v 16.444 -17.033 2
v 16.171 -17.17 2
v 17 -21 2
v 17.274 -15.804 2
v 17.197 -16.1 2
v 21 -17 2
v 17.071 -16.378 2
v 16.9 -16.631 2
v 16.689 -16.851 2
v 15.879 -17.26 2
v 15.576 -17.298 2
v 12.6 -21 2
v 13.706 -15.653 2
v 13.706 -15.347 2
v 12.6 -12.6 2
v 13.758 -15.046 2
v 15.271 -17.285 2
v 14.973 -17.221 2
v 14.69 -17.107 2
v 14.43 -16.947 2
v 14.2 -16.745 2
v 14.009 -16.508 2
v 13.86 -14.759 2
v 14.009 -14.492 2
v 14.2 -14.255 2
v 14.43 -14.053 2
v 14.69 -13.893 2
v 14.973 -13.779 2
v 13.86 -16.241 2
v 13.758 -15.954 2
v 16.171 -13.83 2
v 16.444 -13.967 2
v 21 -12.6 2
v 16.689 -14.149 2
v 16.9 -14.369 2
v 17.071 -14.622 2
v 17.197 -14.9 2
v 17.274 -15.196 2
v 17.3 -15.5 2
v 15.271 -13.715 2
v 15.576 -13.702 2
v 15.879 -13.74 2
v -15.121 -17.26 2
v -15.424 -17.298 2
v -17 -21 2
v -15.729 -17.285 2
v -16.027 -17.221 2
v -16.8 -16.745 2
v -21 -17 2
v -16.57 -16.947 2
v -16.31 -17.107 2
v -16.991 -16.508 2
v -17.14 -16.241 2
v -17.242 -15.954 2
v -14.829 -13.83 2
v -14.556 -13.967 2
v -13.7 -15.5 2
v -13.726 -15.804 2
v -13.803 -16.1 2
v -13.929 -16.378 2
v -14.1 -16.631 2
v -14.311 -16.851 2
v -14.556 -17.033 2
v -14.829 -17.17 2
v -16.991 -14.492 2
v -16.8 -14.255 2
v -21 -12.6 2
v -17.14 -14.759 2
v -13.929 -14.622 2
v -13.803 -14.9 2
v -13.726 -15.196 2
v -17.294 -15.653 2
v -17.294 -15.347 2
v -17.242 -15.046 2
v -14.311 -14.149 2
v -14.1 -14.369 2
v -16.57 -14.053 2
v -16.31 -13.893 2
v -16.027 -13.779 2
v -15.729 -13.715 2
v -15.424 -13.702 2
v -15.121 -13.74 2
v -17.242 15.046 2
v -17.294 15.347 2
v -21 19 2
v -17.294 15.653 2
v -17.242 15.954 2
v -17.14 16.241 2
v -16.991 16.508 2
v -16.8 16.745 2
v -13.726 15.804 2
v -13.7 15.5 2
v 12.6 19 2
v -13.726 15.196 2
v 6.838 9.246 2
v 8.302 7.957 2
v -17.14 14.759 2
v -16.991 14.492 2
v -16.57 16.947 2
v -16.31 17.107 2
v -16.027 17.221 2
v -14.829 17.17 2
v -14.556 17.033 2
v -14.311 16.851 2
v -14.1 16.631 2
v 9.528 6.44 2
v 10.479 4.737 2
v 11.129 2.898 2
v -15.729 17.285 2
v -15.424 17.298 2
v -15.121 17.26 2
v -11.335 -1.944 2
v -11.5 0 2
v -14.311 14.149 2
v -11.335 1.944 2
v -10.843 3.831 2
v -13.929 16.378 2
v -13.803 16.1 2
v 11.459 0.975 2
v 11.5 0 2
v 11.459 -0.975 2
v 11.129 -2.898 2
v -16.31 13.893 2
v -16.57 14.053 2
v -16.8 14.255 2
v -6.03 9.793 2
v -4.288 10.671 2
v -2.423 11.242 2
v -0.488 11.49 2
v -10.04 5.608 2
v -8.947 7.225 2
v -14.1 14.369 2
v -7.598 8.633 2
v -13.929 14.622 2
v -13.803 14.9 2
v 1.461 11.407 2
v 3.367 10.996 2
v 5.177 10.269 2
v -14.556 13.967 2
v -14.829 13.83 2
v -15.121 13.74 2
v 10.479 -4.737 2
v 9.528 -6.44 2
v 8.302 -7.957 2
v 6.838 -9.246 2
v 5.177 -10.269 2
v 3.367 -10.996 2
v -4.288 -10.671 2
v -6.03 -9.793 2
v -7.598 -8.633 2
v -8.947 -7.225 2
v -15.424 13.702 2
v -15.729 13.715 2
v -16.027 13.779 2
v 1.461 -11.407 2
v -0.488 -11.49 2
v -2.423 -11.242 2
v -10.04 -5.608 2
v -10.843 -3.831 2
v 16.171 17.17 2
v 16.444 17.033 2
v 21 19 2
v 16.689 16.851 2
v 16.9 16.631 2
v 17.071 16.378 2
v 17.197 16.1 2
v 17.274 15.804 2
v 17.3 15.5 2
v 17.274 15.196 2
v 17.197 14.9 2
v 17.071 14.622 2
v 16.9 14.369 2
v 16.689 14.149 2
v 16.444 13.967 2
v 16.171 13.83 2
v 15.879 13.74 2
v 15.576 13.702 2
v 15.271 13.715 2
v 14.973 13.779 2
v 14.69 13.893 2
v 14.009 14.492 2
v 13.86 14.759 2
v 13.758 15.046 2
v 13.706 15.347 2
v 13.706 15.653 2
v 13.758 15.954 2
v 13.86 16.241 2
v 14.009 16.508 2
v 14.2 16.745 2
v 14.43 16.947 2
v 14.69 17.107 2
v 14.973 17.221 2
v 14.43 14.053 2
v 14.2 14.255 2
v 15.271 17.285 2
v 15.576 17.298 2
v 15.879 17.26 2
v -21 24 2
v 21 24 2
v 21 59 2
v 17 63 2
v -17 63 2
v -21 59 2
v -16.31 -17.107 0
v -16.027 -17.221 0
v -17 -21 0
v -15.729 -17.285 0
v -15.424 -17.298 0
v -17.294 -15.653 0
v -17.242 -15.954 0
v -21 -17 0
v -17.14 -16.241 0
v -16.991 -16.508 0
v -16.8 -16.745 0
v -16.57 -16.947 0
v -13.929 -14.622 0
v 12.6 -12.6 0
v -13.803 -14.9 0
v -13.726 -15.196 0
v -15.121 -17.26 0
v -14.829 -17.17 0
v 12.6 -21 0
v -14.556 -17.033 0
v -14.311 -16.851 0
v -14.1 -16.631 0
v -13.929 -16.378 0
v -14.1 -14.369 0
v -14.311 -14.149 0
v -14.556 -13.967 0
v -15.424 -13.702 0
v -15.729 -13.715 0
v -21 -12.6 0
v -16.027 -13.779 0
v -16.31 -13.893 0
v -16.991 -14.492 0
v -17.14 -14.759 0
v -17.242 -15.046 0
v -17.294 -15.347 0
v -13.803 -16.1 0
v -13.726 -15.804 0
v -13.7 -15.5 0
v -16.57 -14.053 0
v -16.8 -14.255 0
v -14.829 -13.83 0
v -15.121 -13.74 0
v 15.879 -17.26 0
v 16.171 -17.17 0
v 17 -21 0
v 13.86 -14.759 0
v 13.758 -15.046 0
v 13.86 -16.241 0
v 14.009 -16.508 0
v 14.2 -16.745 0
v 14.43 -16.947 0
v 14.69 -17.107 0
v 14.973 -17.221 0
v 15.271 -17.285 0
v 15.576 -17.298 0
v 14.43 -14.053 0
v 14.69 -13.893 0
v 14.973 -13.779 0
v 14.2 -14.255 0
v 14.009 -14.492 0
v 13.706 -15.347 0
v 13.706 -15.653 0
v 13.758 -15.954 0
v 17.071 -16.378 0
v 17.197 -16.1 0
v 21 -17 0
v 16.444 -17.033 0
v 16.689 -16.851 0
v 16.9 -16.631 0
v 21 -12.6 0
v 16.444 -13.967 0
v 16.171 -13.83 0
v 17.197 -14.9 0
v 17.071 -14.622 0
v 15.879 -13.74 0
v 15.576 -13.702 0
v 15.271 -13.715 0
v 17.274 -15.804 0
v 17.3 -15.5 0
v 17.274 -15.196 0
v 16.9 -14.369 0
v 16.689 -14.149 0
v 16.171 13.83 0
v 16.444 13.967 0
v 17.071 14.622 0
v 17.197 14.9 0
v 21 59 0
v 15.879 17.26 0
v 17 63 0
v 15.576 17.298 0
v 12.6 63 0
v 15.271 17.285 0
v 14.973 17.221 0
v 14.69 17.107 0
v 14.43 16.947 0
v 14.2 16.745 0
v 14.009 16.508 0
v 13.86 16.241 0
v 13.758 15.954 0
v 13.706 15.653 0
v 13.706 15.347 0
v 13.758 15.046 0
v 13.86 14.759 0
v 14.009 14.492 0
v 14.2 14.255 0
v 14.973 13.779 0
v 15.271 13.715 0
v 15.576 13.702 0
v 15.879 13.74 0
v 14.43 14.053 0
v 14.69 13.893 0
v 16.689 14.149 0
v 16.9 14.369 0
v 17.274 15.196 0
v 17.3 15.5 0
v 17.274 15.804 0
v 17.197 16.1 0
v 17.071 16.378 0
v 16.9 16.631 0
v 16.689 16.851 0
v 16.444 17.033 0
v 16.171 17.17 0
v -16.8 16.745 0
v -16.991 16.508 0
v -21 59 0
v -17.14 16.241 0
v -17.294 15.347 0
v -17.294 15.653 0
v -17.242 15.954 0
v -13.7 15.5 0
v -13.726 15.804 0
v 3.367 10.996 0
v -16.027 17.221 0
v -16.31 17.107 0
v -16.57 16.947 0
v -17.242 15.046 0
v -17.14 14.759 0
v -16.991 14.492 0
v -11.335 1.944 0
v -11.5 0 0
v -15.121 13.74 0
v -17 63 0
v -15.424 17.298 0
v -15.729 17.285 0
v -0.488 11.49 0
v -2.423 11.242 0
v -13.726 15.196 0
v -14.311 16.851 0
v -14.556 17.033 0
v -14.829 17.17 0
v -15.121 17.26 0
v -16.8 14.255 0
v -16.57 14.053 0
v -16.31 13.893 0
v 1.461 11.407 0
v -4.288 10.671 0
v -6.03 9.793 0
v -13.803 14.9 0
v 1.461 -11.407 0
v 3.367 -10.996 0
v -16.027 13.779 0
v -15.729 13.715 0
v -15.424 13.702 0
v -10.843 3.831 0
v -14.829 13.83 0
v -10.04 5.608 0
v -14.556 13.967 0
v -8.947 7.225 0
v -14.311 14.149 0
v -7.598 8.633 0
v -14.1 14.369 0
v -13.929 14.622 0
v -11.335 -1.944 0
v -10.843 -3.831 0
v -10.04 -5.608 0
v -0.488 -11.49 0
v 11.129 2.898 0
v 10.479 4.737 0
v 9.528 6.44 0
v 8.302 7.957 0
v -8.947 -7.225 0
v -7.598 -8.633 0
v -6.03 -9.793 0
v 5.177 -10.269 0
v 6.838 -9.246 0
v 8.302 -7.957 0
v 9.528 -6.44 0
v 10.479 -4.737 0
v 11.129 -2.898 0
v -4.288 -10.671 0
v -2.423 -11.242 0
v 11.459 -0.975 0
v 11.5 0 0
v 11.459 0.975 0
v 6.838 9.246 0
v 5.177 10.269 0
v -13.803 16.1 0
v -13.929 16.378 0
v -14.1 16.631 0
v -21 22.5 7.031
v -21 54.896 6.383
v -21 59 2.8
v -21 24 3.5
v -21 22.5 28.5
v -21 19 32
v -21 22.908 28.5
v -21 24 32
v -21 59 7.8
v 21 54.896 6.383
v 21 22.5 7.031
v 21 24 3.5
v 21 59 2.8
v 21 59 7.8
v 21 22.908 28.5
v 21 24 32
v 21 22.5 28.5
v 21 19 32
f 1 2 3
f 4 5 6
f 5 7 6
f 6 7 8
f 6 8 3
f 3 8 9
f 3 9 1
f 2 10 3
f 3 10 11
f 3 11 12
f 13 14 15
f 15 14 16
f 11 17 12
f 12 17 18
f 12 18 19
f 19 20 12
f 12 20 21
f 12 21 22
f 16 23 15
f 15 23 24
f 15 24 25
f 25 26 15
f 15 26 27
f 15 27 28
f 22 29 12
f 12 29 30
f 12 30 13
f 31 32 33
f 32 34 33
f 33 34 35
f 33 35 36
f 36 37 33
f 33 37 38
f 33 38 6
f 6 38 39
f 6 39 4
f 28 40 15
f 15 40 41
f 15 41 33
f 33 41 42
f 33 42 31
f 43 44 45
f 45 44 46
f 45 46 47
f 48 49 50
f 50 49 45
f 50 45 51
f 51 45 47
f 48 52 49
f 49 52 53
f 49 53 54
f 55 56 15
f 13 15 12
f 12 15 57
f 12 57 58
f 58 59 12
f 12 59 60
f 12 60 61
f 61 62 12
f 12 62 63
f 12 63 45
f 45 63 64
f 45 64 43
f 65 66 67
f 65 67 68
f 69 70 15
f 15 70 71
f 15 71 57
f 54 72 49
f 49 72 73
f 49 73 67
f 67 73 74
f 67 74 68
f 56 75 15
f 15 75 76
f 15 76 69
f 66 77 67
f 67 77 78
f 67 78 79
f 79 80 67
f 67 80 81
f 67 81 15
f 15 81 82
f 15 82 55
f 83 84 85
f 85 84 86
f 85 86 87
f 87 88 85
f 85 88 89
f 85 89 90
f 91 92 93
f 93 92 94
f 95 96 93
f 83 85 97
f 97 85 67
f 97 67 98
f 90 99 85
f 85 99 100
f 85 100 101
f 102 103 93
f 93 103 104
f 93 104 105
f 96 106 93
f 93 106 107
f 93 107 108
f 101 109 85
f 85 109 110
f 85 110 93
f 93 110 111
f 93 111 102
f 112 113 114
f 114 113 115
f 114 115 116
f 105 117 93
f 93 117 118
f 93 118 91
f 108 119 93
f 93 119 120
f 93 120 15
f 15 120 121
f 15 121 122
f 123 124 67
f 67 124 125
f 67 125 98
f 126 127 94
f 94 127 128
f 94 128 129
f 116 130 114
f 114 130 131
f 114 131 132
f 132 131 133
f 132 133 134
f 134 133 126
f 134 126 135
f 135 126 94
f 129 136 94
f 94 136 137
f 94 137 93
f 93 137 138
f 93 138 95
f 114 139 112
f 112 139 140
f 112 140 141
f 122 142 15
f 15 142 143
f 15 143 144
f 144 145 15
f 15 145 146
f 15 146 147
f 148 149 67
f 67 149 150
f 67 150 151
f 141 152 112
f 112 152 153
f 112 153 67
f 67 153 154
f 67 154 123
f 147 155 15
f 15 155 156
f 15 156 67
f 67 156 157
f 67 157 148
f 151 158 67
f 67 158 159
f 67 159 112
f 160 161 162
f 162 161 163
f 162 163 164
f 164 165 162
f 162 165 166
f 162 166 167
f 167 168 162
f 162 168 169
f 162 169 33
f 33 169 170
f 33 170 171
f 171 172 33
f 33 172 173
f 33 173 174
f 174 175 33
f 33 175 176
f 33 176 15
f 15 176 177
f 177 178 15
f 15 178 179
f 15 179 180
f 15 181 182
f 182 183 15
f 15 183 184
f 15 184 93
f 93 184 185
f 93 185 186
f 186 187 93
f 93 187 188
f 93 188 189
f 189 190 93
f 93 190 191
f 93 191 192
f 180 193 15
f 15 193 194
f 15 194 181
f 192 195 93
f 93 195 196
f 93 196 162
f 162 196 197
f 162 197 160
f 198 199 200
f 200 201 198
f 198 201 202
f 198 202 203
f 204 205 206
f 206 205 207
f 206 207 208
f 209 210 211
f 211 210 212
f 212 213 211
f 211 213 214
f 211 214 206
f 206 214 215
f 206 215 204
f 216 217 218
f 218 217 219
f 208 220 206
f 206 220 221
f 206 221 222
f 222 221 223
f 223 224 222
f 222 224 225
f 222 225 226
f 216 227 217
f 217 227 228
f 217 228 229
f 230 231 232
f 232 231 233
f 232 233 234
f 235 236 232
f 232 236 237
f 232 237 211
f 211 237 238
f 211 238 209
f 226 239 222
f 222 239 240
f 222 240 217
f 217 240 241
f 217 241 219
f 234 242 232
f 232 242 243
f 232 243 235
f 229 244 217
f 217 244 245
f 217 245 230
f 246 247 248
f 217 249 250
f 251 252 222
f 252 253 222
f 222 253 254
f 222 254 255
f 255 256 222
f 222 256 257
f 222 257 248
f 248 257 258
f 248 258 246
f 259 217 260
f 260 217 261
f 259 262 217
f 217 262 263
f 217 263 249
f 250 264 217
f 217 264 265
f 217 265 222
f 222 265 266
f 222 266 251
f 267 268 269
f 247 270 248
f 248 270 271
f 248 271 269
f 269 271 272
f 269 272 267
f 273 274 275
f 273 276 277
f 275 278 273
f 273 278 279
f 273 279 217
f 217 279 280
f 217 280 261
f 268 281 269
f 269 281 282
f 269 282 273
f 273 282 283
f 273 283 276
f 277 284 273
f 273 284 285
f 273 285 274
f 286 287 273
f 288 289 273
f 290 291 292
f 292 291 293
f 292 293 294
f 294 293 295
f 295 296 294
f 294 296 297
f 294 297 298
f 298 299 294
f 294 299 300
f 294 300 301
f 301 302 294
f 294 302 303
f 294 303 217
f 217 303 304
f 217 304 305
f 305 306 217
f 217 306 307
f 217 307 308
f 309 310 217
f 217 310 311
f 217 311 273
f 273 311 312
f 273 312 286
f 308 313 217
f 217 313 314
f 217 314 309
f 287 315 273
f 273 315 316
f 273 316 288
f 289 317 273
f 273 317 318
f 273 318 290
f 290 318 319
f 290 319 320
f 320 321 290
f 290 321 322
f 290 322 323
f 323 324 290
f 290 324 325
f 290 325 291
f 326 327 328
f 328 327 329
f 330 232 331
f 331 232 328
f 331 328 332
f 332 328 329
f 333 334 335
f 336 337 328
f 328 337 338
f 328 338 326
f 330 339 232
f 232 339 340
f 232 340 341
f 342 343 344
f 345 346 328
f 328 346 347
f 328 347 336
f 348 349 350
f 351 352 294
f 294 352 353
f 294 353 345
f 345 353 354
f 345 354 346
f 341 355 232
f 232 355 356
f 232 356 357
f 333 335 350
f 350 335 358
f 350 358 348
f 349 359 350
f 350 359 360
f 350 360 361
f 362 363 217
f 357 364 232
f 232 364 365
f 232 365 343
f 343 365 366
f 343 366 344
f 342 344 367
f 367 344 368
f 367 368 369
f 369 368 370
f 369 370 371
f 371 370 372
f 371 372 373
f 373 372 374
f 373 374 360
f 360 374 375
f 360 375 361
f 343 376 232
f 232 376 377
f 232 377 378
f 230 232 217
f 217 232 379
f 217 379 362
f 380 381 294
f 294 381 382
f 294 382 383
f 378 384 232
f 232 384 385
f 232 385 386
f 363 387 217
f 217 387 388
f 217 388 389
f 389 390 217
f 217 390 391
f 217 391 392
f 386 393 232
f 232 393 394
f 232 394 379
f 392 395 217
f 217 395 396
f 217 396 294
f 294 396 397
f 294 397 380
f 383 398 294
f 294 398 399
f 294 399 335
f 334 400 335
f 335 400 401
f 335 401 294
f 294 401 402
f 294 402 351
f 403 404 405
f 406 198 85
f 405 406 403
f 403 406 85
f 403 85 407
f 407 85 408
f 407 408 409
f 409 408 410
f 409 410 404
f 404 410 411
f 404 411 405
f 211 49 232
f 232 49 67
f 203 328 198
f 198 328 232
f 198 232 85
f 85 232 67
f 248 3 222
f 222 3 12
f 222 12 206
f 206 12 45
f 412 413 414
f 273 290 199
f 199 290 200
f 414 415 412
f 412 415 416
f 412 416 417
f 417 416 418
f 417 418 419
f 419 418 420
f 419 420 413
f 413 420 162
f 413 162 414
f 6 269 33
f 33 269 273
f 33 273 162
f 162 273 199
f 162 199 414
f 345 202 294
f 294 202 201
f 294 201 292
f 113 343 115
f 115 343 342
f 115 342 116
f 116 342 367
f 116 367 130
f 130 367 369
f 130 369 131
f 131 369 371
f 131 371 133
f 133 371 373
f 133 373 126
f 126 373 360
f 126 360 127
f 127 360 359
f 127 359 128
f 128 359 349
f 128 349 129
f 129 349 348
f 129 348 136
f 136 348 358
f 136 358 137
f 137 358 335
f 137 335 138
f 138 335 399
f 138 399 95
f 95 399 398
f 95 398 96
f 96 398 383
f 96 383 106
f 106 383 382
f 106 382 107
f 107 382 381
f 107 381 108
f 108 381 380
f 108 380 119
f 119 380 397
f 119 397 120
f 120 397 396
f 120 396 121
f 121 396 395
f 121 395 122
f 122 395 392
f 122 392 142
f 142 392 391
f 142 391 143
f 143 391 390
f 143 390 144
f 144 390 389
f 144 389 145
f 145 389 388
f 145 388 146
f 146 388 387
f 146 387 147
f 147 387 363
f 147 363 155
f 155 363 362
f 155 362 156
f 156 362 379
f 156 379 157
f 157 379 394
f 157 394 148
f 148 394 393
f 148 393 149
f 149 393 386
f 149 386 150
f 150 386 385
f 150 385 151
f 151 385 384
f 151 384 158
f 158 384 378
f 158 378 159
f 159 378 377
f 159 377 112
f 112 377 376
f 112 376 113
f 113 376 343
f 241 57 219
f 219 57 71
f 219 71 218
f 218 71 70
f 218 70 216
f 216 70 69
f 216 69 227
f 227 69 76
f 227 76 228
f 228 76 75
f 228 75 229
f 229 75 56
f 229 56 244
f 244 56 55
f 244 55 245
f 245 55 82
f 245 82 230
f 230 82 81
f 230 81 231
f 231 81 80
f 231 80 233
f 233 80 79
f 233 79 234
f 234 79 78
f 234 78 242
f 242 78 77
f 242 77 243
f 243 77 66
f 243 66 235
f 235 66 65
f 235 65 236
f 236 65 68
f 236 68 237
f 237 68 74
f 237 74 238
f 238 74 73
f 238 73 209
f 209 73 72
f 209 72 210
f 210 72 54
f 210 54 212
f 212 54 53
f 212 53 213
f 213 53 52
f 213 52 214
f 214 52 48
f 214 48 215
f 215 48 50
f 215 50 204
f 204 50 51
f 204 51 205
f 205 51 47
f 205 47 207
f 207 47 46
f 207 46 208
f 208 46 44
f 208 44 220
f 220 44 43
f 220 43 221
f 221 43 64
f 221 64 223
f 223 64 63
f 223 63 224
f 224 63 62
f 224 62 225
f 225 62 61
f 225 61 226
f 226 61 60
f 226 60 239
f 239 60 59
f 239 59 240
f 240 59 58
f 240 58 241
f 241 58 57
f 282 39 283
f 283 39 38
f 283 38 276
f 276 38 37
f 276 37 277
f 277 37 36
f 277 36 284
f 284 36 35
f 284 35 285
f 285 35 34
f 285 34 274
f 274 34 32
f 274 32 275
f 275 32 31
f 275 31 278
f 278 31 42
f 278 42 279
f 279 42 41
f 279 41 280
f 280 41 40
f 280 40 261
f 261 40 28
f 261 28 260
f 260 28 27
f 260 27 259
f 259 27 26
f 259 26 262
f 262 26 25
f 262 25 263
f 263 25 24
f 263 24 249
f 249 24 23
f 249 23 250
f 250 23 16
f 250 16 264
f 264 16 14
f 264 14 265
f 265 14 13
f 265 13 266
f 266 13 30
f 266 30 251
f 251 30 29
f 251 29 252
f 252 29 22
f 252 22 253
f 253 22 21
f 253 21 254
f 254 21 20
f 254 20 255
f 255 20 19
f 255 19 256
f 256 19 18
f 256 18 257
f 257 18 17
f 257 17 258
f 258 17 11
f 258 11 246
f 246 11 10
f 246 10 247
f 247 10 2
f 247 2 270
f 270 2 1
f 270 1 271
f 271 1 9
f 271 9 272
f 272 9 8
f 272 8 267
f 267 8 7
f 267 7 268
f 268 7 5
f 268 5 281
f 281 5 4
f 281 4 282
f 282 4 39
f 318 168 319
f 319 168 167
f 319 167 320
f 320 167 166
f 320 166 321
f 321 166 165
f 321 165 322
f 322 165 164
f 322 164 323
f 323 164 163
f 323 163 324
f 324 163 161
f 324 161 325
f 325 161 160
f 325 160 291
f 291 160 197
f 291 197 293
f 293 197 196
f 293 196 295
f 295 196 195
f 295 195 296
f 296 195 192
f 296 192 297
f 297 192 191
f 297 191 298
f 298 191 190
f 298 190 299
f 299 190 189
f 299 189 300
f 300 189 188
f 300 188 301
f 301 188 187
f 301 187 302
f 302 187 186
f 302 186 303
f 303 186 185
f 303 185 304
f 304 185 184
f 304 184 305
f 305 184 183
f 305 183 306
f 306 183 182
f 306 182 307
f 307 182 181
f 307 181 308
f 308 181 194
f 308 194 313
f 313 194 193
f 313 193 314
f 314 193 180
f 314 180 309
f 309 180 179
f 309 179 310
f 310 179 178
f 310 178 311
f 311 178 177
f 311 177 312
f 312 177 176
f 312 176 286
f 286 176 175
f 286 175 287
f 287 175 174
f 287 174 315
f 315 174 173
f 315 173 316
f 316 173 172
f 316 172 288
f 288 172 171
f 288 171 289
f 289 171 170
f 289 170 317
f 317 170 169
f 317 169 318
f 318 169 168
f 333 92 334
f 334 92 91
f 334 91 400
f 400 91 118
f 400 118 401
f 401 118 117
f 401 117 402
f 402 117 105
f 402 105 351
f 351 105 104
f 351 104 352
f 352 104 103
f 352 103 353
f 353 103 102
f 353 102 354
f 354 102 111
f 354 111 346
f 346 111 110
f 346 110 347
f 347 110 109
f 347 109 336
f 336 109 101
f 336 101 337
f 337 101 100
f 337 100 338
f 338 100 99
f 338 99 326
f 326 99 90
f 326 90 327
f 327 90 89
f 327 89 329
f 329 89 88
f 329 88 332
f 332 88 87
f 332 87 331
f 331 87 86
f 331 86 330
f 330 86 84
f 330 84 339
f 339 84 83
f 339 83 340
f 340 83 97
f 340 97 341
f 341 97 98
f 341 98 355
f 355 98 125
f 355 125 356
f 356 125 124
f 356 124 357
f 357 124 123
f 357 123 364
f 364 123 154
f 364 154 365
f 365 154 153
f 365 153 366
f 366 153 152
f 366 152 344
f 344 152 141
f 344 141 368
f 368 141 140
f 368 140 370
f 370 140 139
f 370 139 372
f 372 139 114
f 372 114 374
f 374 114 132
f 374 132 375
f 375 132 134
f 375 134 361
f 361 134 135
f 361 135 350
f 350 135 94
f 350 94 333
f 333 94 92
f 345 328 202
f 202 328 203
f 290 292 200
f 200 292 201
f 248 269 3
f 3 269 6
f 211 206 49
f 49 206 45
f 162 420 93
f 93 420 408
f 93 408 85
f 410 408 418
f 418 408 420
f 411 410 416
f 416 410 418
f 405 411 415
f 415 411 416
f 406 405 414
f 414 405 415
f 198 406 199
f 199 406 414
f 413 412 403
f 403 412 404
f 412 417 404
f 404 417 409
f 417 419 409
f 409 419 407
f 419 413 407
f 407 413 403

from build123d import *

# Parameters (mm, degrees)
SKETCH1_W            = 42
SKETCH1_H            = 84
SKETCH1_R            = 11.5
BOSS_EXTRUDE1_DEPTH  = 2
M3_CLEARANCE_HOLE1_D = 3.6
CHAMFER1_SIZE        = 4
BOSS_EXTRUDE2_DEPTH  = 42
CUT_EXTRUDE4_DEPTH   = 43


with BuildPart() as part:
    # Sketch1 → Boss-Extrude1 (new body)
    with BuildSketch(Plane.XY):
        with Locations((0, 21)):
            Rectangle(SKETCH1_W, SKETCH1_H)
        Circle(SKETCH1_R, mode=Mode.SUBTRACT)
    extrude(amount=BOSS_EXTRUDE1_DEPTH)

    # M3 Clearance Hole1 (through all)
    with Locations(Plane.XY.offset(2)):
        with Locations((-15.5, 15.5), (15.5, 15.5), (15.5, -15.5), (-15.5, -15.5)):
            Hole(M3_CLEARANCE_HOLE1_D / 2)

    # Chamfer1
    chamfer1_edges = [part.edges().sort_by_distance(p)[0] for p in [
        (-21, 63, 1),
        (21, 63, 1),
        (21, -21, 1),
        (-21, -21, 1),
    ]]
    chamfer(chamfer1_edges, length=CHAMFER1_SIZE)

    # Sketch4 → Boss-Extrude2 (add, through all)
    with BuildSketch(Plane(origin=(21, 0, 0), x_dir=(0, 0, -1), z_dir=(1, 0, 0))):
        Polygon((-32, 24), (-7.8, 59), (-2.8, 59), (-3.5, 24), (-2, 24), (-2, 19), (-32, 19), align=None)
    extrude(amount=-BOSS_EXTRUDE2_DEPTH)

    # Sketch5 → Cut-Extrude4 (cut, through all)
    with BuildSketch(Plane.ZY.offset(21)):
        Polygon((7.03069993, 22.5), (28.5, 22.5), (28.5, 22.907824173), (6.382789422, 54.895525423), align=None)
    extrude(amount=-CUT_EXTRUDE4_DEPTH, mode=Mode.SUBTRACT)


solid = part.part
